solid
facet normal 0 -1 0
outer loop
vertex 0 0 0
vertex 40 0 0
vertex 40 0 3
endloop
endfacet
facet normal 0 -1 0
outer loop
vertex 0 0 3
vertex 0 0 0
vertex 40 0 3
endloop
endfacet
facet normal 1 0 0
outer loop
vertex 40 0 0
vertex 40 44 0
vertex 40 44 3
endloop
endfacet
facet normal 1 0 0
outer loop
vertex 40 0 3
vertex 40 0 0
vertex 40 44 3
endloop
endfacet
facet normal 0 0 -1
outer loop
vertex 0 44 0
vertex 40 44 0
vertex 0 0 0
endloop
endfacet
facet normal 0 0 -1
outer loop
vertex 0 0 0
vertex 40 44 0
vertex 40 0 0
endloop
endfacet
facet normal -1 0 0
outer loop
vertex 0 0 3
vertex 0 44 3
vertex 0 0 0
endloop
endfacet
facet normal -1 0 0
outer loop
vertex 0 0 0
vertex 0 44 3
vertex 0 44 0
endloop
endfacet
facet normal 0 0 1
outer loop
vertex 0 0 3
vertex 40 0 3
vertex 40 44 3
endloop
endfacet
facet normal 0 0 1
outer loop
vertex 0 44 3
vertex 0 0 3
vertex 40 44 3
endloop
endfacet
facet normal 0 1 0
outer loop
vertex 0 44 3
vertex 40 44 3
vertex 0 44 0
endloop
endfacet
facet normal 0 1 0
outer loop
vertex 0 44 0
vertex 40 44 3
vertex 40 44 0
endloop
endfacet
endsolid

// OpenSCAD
thickness=3;
wallh=44;
wallw=40;



linear_extrude(height=thickness)
wall();





module wall() {

 
polygon( [ [0,0],[wallw,0],[wallw,wallh],[0,wallh] ] , [   [0,1,2,3] ]);

}
